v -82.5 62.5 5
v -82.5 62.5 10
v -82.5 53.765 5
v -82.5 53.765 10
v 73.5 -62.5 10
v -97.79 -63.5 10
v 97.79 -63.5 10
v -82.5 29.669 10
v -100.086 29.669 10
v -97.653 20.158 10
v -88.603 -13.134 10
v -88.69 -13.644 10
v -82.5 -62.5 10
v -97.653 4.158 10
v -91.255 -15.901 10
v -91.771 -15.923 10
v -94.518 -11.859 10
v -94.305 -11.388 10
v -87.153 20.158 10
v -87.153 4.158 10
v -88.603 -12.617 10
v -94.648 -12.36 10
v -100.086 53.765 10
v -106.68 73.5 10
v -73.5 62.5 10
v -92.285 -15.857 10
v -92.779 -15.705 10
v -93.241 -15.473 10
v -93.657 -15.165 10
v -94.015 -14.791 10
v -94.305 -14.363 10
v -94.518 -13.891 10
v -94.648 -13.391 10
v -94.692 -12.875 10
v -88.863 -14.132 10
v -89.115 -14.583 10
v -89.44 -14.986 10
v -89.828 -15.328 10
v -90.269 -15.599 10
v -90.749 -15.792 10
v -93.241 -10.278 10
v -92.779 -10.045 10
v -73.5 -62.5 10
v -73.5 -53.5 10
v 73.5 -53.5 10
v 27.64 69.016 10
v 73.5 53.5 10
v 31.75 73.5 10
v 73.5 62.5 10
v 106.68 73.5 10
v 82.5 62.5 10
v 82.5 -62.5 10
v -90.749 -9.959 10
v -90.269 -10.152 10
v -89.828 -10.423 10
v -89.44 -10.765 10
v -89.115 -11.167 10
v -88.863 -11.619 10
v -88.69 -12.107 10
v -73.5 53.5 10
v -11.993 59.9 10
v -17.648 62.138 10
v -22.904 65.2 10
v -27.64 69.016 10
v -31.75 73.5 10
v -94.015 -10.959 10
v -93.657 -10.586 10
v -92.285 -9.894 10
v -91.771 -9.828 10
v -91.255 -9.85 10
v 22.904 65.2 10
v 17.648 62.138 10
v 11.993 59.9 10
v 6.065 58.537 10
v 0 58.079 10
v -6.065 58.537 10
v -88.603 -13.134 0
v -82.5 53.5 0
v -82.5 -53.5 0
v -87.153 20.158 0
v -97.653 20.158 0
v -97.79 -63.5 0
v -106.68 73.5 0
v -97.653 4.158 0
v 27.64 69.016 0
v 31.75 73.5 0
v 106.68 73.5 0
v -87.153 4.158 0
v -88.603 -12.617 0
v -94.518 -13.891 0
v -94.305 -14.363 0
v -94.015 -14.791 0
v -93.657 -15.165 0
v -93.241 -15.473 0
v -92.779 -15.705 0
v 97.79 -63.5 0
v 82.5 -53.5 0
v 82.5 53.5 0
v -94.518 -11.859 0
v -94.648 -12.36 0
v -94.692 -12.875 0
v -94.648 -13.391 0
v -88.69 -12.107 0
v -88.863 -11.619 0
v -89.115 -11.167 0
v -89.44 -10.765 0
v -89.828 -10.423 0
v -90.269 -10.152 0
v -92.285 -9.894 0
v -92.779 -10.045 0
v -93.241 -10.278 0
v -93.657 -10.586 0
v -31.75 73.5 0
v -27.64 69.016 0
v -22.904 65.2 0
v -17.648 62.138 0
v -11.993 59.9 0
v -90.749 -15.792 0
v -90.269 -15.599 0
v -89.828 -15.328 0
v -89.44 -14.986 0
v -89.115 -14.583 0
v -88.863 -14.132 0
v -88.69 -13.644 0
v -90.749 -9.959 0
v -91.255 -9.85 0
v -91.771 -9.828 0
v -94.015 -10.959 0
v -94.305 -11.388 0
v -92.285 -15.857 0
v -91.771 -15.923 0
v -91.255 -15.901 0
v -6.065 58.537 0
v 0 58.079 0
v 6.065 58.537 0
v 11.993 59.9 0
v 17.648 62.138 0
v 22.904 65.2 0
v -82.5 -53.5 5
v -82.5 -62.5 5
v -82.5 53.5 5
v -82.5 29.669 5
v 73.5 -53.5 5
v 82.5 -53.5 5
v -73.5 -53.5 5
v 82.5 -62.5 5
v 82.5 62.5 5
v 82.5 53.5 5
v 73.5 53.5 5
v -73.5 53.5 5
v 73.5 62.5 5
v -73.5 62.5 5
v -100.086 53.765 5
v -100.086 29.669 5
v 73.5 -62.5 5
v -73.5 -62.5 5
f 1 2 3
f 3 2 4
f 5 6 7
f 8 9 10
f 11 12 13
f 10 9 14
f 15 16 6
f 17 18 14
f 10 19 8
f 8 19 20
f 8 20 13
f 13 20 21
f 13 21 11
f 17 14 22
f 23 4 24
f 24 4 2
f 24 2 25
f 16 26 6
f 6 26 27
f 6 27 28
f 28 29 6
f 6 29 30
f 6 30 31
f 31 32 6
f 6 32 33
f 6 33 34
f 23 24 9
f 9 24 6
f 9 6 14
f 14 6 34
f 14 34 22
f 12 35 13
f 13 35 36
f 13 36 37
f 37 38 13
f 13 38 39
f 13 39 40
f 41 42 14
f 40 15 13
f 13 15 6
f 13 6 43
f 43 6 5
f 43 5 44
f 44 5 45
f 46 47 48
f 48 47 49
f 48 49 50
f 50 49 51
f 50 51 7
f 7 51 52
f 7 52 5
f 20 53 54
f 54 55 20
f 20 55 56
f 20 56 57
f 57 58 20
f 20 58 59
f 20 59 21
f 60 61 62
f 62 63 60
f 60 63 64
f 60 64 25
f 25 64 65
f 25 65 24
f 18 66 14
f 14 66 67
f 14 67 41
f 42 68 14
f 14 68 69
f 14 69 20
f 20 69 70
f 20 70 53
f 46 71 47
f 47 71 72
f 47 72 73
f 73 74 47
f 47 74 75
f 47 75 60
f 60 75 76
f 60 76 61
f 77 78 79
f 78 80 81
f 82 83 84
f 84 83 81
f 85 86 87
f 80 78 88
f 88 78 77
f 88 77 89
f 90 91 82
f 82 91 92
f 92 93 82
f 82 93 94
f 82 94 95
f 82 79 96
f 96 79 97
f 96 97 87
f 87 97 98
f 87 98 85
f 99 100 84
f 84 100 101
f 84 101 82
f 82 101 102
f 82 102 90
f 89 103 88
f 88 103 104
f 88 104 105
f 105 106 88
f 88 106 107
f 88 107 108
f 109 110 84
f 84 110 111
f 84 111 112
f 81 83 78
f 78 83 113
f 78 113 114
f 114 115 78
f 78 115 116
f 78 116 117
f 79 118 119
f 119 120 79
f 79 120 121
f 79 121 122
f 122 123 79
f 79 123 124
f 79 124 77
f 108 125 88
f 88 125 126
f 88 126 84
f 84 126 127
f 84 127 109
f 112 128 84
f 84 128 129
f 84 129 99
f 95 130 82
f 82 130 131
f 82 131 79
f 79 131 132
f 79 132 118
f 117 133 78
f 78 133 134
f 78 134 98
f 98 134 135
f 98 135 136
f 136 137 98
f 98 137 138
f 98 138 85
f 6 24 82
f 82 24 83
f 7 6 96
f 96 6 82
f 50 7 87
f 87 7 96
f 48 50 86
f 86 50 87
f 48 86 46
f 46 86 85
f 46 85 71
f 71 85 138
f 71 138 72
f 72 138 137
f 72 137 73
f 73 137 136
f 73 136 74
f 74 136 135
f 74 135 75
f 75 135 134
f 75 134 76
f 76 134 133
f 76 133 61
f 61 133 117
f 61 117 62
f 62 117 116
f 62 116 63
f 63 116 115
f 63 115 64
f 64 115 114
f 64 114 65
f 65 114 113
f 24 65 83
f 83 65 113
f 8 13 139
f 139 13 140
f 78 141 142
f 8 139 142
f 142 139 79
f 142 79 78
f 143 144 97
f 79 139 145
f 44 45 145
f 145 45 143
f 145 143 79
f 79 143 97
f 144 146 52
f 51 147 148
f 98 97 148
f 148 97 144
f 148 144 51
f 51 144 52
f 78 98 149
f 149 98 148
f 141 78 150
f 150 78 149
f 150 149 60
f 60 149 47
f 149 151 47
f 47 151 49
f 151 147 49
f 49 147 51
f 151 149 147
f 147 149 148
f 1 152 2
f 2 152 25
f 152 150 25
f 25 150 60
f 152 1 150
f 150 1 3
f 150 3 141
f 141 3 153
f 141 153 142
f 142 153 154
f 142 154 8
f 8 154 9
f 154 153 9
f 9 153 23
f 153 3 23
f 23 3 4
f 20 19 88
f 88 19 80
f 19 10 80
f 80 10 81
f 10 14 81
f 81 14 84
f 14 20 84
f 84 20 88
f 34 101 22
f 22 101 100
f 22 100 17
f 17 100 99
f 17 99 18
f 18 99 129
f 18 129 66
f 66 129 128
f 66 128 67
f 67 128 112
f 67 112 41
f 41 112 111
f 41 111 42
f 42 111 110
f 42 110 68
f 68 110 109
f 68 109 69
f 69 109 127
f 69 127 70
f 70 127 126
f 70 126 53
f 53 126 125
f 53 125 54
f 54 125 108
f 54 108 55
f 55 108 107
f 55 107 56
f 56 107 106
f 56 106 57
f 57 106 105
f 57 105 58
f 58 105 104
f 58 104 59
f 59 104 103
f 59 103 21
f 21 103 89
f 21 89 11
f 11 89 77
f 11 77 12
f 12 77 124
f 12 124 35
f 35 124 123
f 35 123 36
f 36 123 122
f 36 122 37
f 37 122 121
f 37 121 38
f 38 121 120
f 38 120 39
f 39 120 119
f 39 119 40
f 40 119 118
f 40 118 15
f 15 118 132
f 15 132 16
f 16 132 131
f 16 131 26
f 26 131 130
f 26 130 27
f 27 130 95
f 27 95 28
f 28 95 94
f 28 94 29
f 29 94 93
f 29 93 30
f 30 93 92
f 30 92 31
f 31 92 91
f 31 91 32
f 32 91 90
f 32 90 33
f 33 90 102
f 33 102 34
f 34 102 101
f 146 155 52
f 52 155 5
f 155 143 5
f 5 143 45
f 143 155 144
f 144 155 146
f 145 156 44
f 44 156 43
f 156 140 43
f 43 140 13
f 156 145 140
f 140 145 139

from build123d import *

# Parameters (mm, degrees)
SKETCH1_W           = 165
SKETCH1_H           = 107
BOSS_EXTRUDE1_DEPTH = 10
SKETCH2_W           = 9
SKETCH2_H           = 9
CUT_EXTRUDE1_DEPTH  = 5
SKETCH3_W           = 17.586391164
SKETCH3_H           = 24.095664715
CUT_EXTRUDE2_DEPTH  = 5
SKETCH6_W           = 10.5
SKETCH6_H           = 16
CUT_EXTRUDE3_DEPTH  = 130.934107916
SKETCH8_R           = 3.05
CUT_EXTRUDE4_DEPTH  = 130.934107916
SKETCH9_W           = 9
SKETCH9_H           = 9
CUT_EXTRUDE5_DEPTH  = 5


with BuildPart() as part:
    # Sketch1 → Boss-Extrude1 (new body)
    with BuildSketch(Plane.XY):
        with BuildLine():
            Line((-106.68, 73.5), (-31.75, 73.5))
            ThreePointArc((-31.75, 73.5), (0, 58.078932216), (31.75, 73.5))
            Line((31.75, 73.5), (106.68, 73.5))
            Line((106.68, 73.5), (97.79, -63.5))
            Line((97.79, -63.5), (-97.79, -63.5))
            Line((-97.79, -63.5), (-106.68, 73.5))
        make_face()
        Rectangle(SKETCH1_W, SKETCH1_H, mode=Mode.SUBTRACT)
    extrude(amount=BOSS_EXTRUDE1_DEPTH)

    # Sketch2 → Cut-Extrude1 (cut)
    with BuildSketch(Plane.XY.offset(10)):
        with Locations((78, 58)):
            Rectangle(SKETCH2_W, SKETCH2_H)
        with Locations((-78, 58)):
            Rectangle(SKETCH2_W, SKETCH2_H)
    extrude(amount=-CUT_EXTRUDE1_DEPTH, mode=Mode.SUBTRACT)

    # Sketch3 → Cut-Extrude2 (cut)
    with BuildSketch(Plane.XY.offset(10)):
        with Locations((-91.293195582, 41.716713566)):
            Rectangle(SKETCH3_W, SKETCH3_H)
    extrude(amount=-CUT_EXTRUDE2_DEPTH, mode=Mode.SUBTRACT)

    # Sketch6 → Cut-Extrude3 (cut, through all)
    with BuildSketch(Plane(origin=(0, 0, 0), x_dir=(-1, 0, 0), z_dir=(0, 0, -1))):
        with Locations((92.403067071, 12.157965544)):
            Rectangle(SKETCH6_W, SKETCH6_H)
    extrude(amount=-CUT_EXTRUDE3_DEPTH, mode=Mode.SUBTRACT)

    # Sketch8 → Cut-Extrude4 (cut, through all)
    with BuildSketch(Plane(origin=(0, 0, 0), x_dir=(-1, 0, 0), z_dir=(0, 0, -1))):
        with Locations((91.642033661, -12.875359706)):
            Circle(SKETCH8_R)
    extrude(amount=-CUT_EXTRUDE4_DEPTH, mode=Mode.SUBTRACT)

    # Sketch9 → Cut-Extrude5 (cut)
    with BuildSketch(Plane.XY.offset(10)):
        with Locations((78, -58)):
            Rectangle(SKETCH9_W, SKETCH9_H)
        with Locations((-78, -58)):
            Rectangle(SKETCH9_W, SKETCH9_H)
    extrude(amount=-CUT_EXTRUDE5_DEPTH, mode=Mode.SUBTRACT)


solid = part.part
